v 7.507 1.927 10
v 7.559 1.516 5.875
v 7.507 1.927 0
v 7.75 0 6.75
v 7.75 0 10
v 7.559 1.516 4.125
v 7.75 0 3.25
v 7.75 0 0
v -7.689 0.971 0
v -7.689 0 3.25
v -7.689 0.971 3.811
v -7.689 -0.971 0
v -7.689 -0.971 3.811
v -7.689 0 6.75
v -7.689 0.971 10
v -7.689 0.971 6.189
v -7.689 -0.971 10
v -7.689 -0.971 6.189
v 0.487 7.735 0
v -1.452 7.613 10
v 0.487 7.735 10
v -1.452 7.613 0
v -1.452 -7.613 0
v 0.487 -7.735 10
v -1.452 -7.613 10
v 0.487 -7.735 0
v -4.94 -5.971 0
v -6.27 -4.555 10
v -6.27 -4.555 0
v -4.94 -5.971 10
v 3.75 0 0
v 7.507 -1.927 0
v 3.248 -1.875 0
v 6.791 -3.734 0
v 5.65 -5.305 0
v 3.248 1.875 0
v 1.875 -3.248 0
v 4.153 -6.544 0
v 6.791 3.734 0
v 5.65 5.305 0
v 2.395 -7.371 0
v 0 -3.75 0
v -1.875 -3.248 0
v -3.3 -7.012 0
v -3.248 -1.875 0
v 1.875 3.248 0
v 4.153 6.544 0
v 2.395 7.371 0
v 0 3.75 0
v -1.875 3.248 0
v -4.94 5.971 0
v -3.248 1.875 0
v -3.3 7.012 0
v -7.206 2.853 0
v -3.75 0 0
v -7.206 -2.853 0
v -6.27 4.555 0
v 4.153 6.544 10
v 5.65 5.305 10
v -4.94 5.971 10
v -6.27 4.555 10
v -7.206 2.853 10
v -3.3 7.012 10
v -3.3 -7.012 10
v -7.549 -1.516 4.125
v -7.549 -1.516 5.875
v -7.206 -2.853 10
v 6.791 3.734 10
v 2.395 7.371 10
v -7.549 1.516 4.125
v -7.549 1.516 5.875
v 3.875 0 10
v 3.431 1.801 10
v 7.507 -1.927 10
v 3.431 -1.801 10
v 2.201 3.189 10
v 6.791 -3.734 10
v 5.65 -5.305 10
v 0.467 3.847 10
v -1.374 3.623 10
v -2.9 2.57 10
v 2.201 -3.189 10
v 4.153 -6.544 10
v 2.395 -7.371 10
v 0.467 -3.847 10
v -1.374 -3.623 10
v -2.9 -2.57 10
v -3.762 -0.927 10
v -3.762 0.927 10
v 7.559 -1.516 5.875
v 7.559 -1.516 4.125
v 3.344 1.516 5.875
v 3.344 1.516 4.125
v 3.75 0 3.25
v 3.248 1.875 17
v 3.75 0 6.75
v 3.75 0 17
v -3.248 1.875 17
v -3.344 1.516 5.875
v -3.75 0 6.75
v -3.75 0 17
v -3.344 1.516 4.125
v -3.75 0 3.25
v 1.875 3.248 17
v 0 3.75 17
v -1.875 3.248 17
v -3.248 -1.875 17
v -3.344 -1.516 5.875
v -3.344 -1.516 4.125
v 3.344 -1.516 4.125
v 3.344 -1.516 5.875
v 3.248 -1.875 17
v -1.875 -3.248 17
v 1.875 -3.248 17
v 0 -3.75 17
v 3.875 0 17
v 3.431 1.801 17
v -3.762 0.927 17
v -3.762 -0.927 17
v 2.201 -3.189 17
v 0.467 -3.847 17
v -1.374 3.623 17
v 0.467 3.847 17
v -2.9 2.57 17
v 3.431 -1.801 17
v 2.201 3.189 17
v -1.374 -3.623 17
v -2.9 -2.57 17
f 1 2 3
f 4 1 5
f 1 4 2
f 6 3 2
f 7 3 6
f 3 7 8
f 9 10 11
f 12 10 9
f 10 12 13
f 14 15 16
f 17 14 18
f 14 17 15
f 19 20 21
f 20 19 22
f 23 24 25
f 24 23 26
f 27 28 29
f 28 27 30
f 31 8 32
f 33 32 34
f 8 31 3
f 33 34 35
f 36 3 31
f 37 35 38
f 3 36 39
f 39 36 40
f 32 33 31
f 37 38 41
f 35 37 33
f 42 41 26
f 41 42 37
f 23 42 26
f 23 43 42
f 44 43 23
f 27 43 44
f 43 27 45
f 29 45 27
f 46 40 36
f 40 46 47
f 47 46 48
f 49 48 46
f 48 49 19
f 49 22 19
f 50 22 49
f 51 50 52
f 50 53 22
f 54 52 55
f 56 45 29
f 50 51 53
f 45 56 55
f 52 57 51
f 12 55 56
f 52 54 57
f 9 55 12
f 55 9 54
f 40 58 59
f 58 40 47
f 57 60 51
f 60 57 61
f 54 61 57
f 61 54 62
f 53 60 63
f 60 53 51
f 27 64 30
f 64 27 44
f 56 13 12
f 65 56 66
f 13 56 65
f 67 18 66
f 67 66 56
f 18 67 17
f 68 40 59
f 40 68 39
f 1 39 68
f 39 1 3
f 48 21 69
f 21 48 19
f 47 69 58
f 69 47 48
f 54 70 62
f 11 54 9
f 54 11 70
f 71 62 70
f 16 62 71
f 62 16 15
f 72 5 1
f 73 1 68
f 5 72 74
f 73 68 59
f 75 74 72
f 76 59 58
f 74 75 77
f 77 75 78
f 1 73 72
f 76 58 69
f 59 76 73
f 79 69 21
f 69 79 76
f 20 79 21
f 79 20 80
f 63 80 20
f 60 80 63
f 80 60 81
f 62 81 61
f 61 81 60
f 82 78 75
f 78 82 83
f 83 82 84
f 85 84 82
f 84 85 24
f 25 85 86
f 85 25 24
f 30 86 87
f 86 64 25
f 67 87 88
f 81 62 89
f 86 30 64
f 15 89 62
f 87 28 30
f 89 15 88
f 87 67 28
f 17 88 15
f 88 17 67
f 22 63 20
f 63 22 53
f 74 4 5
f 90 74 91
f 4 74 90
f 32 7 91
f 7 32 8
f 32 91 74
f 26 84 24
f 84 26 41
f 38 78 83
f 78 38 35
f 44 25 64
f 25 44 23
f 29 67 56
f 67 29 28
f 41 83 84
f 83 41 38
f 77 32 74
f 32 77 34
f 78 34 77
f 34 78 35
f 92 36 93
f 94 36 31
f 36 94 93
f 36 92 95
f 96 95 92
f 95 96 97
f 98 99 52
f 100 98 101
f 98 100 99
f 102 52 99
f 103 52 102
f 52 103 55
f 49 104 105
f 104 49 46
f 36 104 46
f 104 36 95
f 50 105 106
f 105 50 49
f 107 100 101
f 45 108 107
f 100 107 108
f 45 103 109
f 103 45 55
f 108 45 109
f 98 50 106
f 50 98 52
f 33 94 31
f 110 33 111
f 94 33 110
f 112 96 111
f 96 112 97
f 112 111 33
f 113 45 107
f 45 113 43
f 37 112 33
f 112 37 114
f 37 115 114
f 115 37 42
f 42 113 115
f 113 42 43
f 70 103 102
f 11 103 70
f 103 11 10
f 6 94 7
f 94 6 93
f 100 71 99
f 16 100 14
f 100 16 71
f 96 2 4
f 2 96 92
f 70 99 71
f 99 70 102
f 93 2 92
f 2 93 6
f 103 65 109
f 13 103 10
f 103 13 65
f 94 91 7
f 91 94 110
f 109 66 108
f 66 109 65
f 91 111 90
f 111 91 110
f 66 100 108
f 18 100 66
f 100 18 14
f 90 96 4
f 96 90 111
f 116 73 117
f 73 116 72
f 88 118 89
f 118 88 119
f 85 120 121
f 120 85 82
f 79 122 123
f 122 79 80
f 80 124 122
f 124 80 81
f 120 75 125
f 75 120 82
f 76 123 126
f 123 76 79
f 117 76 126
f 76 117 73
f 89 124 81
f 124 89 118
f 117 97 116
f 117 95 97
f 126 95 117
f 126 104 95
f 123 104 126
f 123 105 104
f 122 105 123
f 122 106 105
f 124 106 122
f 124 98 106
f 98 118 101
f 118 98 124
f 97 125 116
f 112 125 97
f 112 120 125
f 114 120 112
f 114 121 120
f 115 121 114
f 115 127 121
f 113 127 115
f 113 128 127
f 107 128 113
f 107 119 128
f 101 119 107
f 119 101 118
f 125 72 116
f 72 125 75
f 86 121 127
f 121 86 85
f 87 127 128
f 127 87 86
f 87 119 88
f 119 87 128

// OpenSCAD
union() {
	difference() {
		cylinder(d = 15.5000000000, h = 10);
		translate(v = [0, 0, -5.0000000000]) {
			cylinder(d = 7.5000000000, h = 20);
		}
		translate(v = [0, 0, 5.0000000000]) {
			rotate(a = [0, 90, 0]) {
				cylinder(center = true, d = 3.5000000000, h = 100);
			}
		}
	}
	translate(v = [0, 0, 10]) {
		difference() {
			cylinder(d = 7.7500000000, h = 7);
			translate(v = [0, 0, -3.5000000000]) {
				cylinder(d = 7.5000000000, h = 14);
			}
		}
	}
}
